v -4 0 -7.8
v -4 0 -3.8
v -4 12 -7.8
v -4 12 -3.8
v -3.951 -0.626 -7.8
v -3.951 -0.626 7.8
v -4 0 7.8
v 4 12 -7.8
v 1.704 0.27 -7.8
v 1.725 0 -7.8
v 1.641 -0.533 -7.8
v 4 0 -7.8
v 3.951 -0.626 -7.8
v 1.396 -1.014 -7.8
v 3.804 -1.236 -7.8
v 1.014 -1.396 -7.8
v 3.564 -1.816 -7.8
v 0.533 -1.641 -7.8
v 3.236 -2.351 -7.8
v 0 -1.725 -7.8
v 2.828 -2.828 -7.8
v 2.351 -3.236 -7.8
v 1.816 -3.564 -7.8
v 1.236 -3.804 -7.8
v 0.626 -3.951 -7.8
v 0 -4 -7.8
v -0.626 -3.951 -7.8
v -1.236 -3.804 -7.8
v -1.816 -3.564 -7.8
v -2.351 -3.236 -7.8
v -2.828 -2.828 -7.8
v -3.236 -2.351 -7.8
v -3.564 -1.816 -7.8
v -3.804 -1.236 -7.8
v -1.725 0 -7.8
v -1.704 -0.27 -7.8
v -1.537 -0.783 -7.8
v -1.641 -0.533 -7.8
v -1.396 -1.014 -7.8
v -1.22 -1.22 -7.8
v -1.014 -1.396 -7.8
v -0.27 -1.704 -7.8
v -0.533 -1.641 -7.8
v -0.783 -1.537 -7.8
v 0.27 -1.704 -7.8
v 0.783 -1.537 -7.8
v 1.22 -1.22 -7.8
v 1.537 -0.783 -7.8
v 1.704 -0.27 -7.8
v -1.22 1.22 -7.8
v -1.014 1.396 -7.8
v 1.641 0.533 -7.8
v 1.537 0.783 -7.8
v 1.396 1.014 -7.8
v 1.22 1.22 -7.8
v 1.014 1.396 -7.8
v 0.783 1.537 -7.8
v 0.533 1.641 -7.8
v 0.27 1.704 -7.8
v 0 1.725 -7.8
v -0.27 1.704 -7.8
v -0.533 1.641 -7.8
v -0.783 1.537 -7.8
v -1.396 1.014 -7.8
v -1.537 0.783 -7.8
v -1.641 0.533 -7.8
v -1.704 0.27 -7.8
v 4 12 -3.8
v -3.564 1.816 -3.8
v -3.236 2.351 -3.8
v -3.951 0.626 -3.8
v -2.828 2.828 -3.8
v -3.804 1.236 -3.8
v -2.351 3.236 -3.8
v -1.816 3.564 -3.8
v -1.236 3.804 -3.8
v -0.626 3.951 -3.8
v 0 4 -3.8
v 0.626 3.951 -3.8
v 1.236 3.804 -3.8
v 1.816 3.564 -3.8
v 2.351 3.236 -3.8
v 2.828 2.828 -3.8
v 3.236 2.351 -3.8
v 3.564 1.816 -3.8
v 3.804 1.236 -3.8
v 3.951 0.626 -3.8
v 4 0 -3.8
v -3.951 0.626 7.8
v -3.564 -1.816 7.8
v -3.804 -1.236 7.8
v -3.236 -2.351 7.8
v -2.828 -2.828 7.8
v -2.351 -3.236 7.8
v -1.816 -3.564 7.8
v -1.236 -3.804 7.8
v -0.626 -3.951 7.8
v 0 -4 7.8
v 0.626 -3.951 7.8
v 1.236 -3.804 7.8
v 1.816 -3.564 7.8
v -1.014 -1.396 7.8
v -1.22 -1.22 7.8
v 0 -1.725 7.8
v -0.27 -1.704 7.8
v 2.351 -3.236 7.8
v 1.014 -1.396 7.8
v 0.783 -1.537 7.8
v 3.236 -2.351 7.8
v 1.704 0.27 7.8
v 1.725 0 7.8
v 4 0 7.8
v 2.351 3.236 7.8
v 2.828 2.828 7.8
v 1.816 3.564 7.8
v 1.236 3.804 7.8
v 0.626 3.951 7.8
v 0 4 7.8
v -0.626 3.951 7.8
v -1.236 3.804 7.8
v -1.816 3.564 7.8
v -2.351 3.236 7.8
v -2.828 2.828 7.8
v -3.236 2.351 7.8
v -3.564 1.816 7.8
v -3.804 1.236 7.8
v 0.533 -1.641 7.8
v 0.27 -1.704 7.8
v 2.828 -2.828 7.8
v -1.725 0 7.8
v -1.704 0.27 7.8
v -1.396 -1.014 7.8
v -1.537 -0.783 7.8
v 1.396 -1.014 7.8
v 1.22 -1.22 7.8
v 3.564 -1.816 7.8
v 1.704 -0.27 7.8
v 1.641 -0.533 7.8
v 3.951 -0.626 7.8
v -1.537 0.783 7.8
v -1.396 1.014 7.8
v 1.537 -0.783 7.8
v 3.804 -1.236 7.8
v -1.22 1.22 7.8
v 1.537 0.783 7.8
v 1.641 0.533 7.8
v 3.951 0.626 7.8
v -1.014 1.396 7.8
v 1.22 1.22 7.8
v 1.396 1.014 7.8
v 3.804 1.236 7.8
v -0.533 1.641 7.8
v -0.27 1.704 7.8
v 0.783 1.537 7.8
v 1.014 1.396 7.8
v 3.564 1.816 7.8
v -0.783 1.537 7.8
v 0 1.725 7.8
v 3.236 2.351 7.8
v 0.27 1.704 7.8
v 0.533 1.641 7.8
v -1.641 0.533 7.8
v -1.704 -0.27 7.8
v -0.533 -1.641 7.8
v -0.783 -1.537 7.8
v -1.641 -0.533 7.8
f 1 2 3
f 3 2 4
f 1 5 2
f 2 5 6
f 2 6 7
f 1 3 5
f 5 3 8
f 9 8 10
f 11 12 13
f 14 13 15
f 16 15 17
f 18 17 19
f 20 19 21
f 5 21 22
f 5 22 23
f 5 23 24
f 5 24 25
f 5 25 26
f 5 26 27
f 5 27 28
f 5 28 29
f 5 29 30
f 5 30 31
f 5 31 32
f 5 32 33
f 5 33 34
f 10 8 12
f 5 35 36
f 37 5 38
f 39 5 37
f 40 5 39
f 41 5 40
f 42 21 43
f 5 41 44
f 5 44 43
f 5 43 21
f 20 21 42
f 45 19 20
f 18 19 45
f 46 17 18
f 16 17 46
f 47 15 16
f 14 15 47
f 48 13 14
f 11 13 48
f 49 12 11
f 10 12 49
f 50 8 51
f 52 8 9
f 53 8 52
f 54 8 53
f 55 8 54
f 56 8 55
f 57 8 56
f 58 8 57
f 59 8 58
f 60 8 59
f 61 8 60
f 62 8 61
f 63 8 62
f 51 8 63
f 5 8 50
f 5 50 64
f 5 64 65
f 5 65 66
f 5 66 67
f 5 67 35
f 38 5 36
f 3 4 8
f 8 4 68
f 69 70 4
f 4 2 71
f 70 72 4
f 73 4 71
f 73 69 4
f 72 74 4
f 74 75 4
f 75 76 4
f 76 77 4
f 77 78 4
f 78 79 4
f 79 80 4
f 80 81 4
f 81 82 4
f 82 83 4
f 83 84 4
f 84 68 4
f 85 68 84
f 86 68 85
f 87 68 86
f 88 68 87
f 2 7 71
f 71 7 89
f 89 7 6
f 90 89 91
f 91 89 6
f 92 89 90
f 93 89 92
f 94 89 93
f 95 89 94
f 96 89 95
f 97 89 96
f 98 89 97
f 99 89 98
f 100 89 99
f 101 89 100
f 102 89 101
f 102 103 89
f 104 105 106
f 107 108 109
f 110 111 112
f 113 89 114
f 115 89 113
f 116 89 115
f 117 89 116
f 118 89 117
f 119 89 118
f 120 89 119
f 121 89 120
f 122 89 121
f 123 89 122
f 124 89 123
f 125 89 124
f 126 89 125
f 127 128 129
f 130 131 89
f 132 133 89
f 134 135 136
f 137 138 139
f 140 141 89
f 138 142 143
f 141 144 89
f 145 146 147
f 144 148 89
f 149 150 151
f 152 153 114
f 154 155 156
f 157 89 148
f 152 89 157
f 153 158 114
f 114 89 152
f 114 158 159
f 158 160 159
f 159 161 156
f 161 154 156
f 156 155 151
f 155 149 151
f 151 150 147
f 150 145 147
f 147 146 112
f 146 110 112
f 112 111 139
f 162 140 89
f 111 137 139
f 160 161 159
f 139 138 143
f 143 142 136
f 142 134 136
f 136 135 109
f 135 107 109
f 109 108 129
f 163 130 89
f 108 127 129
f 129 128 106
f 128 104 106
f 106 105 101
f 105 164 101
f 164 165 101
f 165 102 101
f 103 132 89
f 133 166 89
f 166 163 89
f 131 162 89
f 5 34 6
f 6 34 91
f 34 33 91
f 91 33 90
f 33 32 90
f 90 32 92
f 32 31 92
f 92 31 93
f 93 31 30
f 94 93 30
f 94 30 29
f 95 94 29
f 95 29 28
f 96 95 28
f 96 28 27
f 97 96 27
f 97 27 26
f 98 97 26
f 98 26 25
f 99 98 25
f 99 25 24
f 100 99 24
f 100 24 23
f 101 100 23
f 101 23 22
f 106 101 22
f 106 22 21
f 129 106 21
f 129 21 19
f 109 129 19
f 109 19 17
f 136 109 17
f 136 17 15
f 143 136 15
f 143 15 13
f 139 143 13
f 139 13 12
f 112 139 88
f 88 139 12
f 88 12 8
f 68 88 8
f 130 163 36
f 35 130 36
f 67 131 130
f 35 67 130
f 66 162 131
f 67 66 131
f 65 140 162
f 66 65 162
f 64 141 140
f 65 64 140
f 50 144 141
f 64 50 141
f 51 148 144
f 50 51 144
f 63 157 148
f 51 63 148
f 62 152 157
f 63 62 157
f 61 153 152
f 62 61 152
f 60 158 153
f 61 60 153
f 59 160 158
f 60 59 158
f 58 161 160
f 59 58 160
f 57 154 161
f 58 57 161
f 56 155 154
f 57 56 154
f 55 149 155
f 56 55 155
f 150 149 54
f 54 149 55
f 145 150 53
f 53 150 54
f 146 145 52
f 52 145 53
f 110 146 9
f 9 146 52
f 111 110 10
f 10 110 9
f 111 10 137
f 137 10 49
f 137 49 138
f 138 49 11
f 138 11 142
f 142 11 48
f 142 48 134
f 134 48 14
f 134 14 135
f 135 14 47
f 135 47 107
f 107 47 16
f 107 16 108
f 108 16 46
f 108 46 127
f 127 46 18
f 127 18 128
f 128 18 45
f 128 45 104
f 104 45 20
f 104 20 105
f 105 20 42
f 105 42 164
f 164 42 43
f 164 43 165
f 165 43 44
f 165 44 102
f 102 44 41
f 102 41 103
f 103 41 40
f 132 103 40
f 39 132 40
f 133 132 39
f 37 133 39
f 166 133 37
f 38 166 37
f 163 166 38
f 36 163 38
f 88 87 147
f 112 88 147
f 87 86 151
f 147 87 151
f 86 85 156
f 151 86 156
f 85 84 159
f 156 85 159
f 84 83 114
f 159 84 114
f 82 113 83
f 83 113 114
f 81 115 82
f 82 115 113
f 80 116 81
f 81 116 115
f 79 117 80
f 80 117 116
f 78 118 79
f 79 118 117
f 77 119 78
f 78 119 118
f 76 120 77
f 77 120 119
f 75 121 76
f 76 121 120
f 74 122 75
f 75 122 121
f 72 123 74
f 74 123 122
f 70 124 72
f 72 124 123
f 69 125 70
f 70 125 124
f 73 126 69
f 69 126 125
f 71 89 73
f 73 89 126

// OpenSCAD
// file: configuration.scad
// Increase this if your slicer or printer make holes too tight.
extra_radius = 0.1;

// OD = outside diameter, corner to corner.
m3_nut_od = 6.1;
m3_nut_radius = m3_nut_od/2 + 0.2 + extra_radius;
m3_washer_radius = 3.5 + extra_radius;

// Major diameter of metric 3mm thread.
m3_major = 2.85;
m3_radius = m3_major/2 + extra_radius;
m3_wide_radius = m3_major/2 + extra_radius + 0.2;

// NEMA17 stepper motors.
motor_shaft_diameter = 5;
motor_shaft_radius = motor_shaft_diameter/2 + extra_radius;

// Frame brackets. M3x8mm screws work best with 3.6 mm brackets.
thickness = 3.6;

// OpenBeam or Misumi. Currently only 15x15 mm, but there is a plan
// to make models more parametric and allow 20x20 mm in the future.
extrusion = 15;

// Placement for the NEMA17 stepper motors.
motor_offset = 44;
motor_length = 47;

probe_tunnel_radius = 1.25 + extra_radius;
probe_excentricity = 5;
// main file
include <configuration.scad>;

// Input parameters
// Originally defined for an 11.85 mm thick heated bed and M3x20mm fasteners
r_body = 4;    // radius of the body - everything besides the lip (mm)
h_body = 11.6; // thickness of the body, about 0.25mm less than the heated bed (mm)
l_lip = 4;     // length that the lip extends from the body (mm)
h_lip = 4;    // thickness of the lip (mm)

$fn = 40;

difference() {

  union() {
    cylinder(r=r_body, h=h_body+h_lip, center=true);
    translate([0,r_body+l_lip/2,-h_body/2]) cube([2*r_body,2*r_body+l_lip, h_lip], center=true);
  };
  cylinder(r=m3_wide_radius, h=h_body+h_lip, center=true);
};
